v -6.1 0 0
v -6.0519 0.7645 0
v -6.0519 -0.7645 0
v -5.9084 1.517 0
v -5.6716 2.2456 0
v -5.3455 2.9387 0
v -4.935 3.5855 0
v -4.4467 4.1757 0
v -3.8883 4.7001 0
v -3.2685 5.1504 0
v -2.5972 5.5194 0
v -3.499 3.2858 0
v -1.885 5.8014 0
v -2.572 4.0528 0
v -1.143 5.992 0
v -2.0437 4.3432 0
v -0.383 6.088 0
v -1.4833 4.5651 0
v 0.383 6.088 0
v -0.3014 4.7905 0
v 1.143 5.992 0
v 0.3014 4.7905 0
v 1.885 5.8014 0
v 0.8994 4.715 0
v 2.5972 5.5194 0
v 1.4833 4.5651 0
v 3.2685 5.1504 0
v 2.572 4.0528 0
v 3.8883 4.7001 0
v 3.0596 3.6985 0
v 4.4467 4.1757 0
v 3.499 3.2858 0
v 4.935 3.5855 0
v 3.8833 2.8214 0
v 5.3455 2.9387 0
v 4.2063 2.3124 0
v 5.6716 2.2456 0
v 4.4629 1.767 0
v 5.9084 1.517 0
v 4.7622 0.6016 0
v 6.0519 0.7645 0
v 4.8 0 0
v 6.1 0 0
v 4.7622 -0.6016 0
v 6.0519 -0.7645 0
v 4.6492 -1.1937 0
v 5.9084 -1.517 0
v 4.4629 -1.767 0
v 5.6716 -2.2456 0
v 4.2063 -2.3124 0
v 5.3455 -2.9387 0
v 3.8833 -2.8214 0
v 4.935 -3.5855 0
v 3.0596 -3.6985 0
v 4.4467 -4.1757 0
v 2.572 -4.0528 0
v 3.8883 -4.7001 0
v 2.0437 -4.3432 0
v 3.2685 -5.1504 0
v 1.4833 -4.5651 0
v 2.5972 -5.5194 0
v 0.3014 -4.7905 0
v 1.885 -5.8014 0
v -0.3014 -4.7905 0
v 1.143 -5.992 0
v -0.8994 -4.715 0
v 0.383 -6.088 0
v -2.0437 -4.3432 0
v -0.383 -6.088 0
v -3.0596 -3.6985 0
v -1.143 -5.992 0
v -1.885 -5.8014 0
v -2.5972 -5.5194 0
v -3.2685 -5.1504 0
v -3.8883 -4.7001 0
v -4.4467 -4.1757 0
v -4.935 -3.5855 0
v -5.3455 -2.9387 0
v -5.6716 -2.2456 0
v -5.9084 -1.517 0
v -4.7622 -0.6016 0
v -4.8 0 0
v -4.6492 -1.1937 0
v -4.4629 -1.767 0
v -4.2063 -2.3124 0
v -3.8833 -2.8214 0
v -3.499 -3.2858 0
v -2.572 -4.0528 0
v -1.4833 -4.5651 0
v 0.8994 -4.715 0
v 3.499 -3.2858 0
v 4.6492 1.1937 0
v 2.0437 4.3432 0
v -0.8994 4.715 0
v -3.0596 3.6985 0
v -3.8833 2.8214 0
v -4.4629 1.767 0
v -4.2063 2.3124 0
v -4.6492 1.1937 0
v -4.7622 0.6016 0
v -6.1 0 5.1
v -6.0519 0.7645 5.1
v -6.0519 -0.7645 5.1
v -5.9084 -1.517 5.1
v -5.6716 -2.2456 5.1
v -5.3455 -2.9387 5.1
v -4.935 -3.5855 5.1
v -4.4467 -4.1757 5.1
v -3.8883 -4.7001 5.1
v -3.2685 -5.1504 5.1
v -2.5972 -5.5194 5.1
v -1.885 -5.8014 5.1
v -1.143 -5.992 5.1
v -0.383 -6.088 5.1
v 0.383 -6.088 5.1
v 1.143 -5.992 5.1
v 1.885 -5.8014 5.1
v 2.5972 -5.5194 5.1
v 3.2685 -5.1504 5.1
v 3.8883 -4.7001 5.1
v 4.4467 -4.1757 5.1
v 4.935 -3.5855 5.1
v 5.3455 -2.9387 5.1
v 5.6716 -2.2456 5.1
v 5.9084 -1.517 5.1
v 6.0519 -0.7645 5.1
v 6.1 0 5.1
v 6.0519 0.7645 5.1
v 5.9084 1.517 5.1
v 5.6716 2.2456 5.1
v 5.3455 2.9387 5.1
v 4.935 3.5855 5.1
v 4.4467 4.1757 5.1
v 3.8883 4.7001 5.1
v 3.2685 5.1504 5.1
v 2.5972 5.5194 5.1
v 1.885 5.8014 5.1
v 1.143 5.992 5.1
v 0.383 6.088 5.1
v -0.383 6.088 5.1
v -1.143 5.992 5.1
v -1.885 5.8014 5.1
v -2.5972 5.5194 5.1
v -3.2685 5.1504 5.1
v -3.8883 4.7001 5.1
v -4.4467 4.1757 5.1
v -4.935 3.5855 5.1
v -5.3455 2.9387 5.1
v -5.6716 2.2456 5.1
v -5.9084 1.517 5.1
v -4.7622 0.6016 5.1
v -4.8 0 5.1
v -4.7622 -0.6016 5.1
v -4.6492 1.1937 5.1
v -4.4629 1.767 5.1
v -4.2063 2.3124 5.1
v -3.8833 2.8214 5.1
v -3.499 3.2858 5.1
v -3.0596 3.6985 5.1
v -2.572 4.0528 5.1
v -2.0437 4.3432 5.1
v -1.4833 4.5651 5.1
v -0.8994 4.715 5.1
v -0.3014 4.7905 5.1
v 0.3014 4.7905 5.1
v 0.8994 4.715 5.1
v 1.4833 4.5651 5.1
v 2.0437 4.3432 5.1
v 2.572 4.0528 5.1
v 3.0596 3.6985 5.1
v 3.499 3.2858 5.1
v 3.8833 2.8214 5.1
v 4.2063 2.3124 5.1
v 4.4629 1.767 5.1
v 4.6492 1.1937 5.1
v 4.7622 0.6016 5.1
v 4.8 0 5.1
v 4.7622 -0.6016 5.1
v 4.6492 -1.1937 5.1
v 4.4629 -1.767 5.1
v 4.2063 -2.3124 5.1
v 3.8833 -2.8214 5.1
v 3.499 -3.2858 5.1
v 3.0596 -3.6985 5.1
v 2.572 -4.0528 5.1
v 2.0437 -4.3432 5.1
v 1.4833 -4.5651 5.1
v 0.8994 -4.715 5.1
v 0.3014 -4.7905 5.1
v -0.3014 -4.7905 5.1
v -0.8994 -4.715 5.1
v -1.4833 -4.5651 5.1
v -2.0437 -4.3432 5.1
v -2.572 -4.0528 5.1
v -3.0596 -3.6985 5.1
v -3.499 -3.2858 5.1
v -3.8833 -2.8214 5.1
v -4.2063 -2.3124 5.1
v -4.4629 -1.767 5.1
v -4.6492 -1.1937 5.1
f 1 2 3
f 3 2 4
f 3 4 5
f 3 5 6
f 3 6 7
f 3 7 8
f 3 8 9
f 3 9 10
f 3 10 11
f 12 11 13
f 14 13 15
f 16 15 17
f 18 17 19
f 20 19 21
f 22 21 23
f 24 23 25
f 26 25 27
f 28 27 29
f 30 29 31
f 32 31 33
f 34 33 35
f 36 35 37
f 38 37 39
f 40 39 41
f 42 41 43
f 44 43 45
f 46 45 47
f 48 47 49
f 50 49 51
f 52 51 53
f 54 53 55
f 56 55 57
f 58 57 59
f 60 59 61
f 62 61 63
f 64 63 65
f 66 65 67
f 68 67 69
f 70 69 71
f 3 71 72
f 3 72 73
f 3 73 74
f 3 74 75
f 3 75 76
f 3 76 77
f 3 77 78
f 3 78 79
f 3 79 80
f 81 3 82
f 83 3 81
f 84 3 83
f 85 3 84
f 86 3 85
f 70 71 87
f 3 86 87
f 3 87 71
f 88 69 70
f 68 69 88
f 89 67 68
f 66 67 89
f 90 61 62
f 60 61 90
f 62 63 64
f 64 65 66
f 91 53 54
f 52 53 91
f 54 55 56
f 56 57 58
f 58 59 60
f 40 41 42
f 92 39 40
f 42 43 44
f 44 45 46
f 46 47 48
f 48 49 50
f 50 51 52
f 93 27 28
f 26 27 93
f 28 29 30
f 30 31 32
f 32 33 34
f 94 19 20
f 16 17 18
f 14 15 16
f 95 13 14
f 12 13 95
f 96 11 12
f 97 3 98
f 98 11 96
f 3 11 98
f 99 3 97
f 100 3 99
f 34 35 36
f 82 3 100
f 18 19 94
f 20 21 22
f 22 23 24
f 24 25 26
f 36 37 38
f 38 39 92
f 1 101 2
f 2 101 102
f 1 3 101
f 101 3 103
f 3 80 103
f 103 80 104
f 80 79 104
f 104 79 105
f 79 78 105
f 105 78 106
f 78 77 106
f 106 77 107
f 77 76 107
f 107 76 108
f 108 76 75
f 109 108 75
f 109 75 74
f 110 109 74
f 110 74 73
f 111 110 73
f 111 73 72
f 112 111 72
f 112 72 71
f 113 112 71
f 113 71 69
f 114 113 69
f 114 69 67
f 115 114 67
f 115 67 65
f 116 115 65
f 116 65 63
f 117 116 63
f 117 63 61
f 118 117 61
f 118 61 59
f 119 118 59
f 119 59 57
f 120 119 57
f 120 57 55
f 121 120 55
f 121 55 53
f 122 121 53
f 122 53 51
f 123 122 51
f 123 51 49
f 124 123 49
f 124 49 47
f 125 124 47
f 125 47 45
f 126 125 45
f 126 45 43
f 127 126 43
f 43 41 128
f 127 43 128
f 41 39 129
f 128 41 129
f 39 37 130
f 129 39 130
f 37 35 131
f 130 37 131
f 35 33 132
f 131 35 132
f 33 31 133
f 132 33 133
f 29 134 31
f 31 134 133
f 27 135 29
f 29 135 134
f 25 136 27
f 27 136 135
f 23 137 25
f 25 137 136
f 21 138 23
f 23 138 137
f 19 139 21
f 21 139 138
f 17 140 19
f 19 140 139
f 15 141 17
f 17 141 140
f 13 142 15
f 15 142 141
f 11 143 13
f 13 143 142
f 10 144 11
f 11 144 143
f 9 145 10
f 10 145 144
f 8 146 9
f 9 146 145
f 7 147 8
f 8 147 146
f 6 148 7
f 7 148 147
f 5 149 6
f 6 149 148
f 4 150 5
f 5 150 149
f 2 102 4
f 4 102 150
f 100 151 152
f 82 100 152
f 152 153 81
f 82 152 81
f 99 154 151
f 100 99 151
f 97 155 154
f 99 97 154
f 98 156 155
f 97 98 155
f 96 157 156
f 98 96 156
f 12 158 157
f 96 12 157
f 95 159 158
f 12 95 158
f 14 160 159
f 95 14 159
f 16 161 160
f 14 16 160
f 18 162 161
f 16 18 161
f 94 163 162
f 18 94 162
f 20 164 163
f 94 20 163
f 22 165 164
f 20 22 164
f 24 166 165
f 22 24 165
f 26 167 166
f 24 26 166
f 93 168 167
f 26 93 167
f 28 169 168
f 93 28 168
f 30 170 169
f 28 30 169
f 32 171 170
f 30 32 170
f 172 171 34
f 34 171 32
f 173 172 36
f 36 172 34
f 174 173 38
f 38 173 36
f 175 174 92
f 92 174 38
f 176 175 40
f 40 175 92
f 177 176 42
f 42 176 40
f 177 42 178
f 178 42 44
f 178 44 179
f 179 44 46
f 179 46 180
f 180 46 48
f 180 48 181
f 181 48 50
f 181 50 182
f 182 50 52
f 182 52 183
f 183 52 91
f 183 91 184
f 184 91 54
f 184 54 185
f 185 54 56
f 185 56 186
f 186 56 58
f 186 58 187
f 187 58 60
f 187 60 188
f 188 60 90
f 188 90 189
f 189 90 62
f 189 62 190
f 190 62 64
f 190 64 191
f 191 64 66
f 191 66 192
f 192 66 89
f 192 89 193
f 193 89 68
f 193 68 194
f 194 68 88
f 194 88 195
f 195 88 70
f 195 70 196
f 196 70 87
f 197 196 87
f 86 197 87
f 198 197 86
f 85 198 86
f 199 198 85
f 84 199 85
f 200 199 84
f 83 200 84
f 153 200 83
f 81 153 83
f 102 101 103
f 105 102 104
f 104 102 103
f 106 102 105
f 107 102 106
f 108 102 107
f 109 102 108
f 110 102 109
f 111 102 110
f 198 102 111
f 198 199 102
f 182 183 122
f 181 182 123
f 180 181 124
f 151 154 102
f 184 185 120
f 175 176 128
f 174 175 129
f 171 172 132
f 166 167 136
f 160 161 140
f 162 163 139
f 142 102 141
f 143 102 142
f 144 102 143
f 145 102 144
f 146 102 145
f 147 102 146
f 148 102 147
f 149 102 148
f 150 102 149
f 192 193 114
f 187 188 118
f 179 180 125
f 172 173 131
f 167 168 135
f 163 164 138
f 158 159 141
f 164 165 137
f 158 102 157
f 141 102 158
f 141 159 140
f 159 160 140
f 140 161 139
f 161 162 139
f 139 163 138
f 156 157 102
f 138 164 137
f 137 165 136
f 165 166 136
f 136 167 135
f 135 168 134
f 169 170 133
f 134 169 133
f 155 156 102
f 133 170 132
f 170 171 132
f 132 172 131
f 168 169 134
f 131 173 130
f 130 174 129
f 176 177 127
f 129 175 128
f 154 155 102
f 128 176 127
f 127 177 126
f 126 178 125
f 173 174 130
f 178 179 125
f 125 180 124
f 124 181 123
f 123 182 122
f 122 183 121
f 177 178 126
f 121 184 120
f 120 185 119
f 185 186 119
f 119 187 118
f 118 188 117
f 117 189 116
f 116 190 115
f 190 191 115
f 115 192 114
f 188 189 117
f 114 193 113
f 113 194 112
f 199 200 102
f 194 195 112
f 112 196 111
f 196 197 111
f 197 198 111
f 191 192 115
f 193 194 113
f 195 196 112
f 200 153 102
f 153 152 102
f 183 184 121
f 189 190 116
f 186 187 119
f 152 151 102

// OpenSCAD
difference() {
	cylinder(5.1,r=12.2/2,$fn=50);
	translate([0,0,-0.2])cylinder(5.5,r=9.6/2,$fn=50);
}
echo((12.2-9.6)/2);
